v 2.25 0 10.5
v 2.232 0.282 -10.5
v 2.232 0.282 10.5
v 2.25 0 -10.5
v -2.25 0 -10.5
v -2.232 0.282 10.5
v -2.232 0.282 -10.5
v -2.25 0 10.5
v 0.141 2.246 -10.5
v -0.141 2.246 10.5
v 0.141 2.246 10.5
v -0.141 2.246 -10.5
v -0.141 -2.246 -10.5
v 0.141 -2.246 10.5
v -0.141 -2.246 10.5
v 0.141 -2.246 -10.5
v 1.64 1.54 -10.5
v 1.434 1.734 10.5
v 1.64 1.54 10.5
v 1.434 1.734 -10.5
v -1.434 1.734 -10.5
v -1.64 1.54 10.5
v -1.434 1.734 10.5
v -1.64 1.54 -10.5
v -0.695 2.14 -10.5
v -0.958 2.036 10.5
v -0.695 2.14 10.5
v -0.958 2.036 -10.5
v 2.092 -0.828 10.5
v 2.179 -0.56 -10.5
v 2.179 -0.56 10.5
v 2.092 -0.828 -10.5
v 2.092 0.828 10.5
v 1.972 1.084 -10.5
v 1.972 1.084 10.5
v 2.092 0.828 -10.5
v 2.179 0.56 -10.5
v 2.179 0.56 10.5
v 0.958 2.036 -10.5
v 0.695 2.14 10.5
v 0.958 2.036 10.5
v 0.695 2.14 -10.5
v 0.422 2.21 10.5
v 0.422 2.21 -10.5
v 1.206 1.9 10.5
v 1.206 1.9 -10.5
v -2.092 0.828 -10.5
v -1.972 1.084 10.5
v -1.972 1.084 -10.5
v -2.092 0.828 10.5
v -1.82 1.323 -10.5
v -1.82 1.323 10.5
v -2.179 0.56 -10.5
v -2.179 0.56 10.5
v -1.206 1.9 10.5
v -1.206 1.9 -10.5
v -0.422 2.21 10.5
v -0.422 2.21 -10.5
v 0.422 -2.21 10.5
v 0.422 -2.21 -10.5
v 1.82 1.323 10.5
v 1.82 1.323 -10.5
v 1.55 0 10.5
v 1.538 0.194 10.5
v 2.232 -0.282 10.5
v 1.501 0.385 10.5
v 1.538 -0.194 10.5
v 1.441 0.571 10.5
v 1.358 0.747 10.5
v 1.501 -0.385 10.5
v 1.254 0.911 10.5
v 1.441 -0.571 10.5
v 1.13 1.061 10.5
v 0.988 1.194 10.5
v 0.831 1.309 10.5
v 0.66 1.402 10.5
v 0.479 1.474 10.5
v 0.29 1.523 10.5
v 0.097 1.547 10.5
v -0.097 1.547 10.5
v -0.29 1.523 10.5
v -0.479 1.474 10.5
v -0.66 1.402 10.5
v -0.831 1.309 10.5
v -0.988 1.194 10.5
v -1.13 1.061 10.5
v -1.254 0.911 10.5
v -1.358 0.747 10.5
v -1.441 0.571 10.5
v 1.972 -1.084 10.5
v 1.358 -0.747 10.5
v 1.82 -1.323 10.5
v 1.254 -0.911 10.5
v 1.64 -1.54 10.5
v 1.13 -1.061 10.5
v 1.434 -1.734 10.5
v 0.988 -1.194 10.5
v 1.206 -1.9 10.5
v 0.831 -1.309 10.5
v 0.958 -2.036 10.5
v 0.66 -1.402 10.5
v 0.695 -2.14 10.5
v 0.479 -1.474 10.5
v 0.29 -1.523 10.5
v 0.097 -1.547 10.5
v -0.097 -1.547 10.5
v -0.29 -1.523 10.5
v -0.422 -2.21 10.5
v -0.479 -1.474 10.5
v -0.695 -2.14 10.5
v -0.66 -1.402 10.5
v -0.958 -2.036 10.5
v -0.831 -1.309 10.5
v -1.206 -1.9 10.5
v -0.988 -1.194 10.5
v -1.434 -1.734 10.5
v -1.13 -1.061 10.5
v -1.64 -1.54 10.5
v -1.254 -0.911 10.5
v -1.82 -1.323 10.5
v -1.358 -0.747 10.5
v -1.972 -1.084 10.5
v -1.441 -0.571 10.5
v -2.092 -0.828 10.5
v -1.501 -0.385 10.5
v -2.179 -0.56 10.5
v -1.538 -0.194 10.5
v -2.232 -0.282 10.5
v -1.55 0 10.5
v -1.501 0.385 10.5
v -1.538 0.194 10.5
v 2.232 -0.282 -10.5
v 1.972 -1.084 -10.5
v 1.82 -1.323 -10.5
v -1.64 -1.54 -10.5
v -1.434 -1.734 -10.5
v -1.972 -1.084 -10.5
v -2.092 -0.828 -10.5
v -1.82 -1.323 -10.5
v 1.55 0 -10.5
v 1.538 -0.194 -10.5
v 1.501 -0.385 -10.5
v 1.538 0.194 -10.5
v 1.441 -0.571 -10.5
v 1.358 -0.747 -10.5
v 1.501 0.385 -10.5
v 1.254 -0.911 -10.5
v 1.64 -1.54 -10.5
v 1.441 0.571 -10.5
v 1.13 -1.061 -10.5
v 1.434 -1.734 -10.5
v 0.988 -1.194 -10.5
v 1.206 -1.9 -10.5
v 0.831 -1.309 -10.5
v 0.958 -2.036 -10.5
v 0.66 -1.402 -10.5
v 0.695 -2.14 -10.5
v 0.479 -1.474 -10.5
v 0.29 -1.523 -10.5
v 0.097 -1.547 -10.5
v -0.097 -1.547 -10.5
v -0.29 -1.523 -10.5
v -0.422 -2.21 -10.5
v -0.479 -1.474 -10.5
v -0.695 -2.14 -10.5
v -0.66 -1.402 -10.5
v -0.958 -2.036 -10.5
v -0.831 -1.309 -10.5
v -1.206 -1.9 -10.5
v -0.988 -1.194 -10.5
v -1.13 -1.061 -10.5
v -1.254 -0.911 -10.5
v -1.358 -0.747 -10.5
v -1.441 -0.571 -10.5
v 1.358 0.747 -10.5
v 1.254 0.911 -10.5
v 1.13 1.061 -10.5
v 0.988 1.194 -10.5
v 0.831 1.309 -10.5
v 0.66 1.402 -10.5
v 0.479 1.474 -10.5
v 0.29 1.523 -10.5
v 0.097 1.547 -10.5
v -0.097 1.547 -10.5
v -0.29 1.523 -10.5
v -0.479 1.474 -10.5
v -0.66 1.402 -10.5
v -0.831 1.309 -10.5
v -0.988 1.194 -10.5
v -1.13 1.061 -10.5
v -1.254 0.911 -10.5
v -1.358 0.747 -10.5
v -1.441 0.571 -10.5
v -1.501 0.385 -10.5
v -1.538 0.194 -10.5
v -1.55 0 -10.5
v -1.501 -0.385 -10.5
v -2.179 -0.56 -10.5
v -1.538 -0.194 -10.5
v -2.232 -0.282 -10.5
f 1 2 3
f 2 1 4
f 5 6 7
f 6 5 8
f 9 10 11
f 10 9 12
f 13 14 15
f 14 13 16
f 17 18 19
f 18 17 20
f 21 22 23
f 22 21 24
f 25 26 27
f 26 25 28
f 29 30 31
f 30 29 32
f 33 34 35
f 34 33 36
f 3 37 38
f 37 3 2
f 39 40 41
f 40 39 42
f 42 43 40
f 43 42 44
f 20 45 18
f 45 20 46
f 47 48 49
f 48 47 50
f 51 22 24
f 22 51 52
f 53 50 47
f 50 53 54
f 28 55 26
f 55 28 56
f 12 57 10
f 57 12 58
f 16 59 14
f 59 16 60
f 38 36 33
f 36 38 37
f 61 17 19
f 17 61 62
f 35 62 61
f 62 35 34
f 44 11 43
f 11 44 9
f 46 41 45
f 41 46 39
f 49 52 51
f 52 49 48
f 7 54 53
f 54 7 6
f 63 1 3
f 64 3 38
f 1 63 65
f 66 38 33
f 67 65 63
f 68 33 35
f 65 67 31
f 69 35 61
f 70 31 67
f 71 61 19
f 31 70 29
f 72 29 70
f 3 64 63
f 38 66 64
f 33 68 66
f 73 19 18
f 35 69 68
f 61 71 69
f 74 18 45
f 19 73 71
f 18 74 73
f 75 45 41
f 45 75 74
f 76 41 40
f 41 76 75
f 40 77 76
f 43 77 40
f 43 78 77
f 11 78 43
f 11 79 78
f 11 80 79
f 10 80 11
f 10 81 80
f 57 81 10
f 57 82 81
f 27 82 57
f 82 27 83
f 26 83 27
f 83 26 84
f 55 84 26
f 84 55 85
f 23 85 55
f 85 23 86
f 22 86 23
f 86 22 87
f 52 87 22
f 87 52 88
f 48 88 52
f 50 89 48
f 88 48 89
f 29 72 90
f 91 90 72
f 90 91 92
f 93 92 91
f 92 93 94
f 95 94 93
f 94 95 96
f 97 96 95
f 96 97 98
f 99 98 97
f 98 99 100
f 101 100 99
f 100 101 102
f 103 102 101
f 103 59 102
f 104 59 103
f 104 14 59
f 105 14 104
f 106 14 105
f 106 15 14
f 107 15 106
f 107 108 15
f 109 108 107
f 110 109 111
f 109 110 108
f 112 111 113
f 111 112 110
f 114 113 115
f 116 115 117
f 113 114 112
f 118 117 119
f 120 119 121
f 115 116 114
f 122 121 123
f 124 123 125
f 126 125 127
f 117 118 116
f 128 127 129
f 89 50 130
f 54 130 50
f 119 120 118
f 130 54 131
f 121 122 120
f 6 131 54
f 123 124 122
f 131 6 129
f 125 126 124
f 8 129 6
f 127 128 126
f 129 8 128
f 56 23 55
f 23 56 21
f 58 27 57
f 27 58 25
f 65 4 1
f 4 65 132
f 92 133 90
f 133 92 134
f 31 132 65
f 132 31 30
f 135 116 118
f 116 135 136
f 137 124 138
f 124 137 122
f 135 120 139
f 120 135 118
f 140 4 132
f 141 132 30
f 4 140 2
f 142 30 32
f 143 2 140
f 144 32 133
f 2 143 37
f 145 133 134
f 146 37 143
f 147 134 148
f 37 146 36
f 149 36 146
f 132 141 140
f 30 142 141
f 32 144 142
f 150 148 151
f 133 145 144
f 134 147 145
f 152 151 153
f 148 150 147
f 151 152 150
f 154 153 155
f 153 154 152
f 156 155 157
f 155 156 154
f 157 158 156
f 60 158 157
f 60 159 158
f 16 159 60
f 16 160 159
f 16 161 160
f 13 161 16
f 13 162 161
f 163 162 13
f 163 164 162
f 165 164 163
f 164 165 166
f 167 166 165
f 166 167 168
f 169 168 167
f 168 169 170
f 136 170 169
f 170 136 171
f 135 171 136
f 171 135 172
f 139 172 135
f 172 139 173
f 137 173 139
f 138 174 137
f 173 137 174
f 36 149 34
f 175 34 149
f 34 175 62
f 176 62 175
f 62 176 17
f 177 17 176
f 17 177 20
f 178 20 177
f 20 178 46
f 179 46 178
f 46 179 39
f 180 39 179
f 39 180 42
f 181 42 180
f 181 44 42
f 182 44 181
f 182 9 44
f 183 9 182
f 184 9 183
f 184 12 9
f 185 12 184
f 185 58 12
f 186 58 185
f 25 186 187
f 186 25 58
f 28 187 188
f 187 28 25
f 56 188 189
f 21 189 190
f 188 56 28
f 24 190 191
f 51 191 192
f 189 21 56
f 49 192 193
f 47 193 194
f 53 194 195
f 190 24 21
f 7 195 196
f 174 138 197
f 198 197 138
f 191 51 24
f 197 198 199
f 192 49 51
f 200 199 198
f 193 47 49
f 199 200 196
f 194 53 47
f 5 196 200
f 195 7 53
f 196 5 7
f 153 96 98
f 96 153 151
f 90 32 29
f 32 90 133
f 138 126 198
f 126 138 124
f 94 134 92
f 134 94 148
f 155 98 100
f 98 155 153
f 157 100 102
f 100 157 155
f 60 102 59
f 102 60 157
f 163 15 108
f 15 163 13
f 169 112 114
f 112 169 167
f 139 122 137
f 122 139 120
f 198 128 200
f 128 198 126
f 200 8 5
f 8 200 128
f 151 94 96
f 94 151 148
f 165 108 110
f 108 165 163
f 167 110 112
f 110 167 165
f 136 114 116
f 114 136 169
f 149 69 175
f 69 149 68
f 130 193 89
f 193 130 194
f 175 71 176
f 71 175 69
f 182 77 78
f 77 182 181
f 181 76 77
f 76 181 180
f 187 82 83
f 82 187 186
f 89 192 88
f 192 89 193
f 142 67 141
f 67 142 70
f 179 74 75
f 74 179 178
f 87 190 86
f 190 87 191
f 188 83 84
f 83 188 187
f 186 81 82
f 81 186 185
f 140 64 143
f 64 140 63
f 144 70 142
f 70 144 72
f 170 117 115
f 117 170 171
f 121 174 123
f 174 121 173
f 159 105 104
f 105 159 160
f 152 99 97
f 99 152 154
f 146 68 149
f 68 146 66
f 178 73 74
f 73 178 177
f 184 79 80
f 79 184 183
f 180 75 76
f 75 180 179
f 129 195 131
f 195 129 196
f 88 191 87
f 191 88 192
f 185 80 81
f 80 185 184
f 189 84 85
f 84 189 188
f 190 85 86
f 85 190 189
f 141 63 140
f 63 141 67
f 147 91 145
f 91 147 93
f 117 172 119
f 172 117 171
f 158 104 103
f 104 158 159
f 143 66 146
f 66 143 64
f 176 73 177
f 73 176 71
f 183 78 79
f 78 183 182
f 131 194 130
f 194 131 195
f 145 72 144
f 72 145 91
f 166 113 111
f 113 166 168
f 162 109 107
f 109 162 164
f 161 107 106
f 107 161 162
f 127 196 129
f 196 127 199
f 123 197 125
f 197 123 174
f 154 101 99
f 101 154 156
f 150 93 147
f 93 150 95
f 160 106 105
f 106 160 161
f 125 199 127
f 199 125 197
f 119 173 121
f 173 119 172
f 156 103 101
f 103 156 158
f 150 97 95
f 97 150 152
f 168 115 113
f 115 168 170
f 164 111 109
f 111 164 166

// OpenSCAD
$fn = 50;


difference() {
	union() {
		translate(v = [0, 0, -10.5000000000]) {
			cylinder(h = 21, r = 2.2500000000);
		}
	}
	union() {
		translate(v = [0, 0, -100.0000000000]) {
			cylinder(h = 200, r = 1.5500000000);
		}
	}
}
